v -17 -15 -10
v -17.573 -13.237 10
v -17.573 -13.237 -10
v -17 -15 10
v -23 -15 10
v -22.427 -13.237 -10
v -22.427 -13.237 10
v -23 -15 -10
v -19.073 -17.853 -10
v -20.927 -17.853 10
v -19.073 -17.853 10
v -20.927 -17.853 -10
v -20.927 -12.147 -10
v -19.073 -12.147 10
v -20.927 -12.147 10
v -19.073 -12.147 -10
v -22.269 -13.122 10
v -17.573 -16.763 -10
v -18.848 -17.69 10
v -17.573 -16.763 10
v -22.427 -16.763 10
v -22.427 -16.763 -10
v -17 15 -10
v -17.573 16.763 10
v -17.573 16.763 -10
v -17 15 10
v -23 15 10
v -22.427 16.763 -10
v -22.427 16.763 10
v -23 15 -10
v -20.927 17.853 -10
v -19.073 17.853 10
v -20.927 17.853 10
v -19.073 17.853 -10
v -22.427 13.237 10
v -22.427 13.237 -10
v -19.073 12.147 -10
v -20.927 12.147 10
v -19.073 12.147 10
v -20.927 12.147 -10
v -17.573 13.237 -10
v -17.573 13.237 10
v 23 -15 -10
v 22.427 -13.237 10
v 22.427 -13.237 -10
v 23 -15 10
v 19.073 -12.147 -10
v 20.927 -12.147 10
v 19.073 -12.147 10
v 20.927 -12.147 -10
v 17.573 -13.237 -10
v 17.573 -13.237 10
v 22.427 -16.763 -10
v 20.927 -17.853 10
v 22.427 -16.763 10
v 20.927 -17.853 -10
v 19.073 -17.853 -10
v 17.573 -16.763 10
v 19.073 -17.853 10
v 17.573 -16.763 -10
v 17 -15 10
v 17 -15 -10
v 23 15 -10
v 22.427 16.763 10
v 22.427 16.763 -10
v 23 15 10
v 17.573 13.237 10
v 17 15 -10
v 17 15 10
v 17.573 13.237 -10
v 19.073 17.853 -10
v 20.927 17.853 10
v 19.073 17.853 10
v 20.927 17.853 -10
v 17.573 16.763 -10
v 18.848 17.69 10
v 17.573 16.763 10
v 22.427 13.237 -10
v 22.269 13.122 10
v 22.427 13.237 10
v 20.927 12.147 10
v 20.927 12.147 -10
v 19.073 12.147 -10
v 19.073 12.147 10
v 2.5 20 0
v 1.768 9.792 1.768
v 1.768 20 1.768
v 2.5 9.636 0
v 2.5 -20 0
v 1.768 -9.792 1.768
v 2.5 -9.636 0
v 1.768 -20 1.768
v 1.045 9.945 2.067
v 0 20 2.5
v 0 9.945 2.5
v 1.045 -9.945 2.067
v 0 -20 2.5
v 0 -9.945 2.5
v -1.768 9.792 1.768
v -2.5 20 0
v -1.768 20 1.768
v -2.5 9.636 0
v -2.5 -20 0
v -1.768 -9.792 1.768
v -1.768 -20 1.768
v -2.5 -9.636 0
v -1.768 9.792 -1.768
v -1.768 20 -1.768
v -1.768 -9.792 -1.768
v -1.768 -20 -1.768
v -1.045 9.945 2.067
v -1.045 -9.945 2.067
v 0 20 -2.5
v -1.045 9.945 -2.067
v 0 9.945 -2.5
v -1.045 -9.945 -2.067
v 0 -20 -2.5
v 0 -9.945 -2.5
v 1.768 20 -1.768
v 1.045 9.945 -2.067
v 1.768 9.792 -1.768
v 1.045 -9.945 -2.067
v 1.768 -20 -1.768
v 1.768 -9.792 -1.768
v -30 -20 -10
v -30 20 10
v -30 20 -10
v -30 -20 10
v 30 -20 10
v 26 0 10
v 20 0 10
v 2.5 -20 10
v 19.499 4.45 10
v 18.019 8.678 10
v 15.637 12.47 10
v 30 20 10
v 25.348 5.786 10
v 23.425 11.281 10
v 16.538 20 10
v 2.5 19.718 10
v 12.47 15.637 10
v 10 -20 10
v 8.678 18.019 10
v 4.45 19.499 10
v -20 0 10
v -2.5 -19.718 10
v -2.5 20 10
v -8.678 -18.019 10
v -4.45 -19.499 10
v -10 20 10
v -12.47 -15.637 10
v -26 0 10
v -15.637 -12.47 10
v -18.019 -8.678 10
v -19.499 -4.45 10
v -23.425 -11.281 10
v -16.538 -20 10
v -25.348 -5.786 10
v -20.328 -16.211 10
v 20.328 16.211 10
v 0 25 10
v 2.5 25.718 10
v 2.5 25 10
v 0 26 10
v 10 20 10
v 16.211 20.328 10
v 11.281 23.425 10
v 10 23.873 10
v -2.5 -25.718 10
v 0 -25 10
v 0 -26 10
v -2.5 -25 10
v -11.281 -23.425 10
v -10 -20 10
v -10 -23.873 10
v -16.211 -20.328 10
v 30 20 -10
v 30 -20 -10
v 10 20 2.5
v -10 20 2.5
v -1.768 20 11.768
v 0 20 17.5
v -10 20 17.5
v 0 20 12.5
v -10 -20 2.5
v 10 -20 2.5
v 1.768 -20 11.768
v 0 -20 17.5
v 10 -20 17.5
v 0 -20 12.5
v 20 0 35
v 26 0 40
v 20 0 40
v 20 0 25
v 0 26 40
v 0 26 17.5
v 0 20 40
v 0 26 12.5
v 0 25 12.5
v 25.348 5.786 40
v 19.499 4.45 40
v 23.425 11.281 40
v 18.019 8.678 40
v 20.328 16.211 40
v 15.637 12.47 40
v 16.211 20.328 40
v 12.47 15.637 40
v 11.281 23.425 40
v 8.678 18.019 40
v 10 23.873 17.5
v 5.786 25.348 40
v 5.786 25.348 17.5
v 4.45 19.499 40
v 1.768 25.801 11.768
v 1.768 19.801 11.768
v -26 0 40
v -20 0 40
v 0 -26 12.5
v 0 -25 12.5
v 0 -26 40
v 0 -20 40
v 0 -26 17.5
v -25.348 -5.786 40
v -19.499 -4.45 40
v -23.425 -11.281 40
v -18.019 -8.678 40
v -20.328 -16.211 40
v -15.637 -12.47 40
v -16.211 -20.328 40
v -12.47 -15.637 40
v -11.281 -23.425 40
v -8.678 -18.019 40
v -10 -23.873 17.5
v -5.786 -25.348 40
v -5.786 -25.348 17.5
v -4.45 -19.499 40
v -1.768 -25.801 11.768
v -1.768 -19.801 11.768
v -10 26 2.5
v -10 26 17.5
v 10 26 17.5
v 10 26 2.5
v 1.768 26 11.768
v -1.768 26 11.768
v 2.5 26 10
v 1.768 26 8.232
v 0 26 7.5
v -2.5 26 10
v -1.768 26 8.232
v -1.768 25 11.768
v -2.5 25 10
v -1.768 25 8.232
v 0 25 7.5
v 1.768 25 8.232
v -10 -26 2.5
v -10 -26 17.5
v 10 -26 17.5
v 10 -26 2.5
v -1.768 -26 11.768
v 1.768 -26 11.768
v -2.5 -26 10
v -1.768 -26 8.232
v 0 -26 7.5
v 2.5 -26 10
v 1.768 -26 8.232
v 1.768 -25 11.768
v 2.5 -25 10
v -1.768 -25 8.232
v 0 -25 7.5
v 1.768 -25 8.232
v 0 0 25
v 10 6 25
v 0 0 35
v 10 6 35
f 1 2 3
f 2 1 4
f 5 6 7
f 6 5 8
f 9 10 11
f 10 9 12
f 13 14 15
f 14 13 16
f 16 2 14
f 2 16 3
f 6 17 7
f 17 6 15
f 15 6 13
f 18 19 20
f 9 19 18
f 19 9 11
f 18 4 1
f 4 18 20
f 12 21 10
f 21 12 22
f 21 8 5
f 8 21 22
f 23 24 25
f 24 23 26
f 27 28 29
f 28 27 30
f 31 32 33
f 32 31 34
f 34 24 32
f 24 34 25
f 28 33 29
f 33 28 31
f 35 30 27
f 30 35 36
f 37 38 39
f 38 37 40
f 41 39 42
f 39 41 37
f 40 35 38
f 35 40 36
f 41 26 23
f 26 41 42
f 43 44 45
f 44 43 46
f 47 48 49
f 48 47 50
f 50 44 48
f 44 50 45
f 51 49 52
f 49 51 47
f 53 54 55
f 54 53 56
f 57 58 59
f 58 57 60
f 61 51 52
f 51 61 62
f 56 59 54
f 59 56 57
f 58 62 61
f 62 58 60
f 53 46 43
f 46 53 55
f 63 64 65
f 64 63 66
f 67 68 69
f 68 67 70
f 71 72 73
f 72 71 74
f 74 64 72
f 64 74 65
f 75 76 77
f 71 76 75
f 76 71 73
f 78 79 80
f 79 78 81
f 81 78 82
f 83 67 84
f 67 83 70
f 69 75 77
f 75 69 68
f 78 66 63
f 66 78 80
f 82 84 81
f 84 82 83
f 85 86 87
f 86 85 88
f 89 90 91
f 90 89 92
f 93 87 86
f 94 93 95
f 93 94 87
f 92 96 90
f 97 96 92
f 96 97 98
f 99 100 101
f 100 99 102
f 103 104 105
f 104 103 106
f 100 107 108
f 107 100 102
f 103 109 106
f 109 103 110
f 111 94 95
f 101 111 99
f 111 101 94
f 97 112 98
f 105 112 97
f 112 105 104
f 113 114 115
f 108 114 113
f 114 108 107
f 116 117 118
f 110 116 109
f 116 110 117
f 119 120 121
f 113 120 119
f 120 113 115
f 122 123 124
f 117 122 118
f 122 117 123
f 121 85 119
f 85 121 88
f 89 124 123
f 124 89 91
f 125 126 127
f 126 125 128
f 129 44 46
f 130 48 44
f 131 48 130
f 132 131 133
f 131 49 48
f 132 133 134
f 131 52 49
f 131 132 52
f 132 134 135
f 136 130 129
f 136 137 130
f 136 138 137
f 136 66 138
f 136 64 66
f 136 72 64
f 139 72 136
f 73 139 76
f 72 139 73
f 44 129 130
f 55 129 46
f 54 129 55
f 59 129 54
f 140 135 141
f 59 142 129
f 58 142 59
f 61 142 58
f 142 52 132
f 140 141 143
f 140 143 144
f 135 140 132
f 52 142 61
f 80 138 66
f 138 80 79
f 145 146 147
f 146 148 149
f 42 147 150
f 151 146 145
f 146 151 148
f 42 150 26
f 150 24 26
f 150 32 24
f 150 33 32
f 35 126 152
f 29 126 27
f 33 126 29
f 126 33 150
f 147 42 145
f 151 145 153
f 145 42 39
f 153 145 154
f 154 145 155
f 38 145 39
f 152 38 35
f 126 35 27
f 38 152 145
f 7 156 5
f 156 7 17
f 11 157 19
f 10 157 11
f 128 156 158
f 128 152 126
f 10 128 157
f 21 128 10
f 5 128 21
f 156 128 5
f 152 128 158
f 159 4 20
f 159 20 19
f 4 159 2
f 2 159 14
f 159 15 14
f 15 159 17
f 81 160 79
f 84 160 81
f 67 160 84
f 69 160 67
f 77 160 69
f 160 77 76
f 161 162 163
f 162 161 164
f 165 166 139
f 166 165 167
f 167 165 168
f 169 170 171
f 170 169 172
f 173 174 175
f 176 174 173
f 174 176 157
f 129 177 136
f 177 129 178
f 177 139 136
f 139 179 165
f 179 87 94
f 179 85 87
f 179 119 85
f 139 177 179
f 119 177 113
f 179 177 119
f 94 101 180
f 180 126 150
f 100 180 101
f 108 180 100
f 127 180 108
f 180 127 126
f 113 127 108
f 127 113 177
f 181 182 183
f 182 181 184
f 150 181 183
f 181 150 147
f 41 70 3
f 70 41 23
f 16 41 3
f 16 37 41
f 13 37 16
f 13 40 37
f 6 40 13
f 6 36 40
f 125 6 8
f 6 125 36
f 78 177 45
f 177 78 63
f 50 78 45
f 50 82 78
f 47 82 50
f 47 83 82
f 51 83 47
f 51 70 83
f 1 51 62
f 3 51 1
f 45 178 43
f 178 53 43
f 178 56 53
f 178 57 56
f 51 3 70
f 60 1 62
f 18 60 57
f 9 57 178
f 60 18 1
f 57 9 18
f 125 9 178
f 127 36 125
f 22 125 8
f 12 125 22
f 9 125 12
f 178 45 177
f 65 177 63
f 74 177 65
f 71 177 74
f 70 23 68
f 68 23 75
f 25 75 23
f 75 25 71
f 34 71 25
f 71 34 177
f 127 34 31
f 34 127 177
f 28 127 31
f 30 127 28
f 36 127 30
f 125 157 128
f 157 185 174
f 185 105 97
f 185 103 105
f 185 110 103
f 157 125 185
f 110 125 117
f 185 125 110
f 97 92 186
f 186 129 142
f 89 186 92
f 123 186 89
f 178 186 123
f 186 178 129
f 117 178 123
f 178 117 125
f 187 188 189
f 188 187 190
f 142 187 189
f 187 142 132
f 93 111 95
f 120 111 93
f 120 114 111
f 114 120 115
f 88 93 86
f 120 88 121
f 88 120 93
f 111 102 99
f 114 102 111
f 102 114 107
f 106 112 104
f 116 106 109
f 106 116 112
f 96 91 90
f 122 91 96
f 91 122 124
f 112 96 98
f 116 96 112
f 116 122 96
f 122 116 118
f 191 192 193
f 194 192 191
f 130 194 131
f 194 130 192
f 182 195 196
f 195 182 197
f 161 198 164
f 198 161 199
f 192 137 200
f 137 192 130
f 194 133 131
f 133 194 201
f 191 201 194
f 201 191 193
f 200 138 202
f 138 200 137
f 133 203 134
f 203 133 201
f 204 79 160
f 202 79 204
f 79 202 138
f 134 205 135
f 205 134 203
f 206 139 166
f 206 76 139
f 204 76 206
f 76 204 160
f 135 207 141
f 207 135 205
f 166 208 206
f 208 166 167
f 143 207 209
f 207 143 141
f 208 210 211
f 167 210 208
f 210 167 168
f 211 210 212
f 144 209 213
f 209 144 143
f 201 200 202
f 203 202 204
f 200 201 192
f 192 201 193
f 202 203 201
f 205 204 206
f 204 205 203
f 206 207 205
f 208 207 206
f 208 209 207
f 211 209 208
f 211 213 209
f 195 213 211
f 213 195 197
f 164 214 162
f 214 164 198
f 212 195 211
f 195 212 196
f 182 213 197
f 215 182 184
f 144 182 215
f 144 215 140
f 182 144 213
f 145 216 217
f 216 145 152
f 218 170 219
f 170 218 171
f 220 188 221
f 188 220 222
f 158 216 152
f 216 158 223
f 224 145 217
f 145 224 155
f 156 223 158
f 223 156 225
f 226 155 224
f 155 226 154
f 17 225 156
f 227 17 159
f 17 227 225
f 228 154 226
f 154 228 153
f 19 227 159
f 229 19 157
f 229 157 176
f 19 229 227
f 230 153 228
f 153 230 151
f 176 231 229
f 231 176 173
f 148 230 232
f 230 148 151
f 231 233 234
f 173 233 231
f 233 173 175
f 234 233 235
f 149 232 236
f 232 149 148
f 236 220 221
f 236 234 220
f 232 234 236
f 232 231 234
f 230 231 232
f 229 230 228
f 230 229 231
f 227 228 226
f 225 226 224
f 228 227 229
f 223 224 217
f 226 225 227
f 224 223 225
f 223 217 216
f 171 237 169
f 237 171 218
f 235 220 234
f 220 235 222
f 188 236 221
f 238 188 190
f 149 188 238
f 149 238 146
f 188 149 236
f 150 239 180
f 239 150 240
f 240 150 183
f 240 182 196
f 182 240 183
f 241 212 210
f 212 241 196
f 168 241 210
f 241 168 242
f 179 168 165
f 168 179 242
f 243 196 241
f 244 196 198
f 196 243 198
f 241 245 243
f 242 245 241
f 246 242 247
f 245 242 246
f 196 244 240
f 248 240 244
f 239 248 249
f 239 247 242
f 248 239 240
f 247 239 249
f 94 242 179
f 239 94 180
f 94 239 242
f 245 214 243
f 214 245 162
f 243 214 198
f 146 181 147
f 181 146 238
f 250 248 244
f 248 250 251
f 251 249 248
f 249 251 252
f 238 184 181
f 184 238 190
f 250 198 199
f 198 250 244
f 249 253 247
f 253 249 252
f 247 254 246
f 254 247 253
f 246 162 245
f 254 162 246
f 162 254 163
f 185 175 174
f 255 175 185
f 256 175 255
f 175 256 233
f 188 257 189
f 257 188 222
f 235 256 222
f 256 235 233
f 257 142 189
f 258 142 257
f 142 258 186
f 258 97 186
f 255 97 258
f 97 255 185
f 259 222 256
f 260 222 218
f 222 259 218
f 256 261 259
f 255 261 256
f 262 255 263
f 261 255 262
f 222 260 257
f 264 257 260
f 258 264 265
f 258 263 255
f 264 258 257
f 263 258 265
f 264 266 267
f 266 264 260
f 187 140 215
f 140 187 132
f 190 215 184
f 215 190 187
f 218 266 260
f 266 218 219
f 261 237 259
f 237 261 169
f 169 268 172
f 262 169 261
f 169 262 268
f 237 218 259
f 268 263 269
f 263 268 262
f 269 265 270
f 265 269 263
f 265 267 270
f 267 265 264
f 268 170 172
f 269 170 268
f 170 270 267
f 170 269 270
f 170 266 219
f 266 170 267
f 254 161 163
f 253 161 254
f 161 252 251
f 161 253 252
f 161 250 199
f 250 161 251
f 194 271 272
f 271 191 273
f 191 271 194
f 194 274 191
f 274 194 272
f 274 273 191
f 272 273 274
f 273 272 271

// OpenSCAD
// Parameters
base_length = 60;
base_width = 40;
base_height = 20;
hole_radius = 3;
pivot_radius = 2.5;
pivot_length = base_width + 10;
arm_thickness = 6;
arm_radius = 20;
arm_length = 30;
wedge_width = 6;
wedge_height = 10;
wedge_length = 20;
brace_width = 6;
brace_height = 15;
brace_length = 20;
core_radius = 10;
core_height = base_height;

// Modules
module base_block() {
    difference() {
        cube([base_length, base_width, base_height], center = true);
        // Mounting holes
        for (x = [-20, 20], y = [-15, 15])
            translate([x, y, 0])
                cylinder(h = base_height + 2, r = hole_radius, center = true);
        // Central cylindrical cavity
        translate([0, 0, 0])
            cylinder(h = base_height + 2, r = core_radius, center = true);
        // Side pivot holes
        for (y = [-base_width/2, base_width/2])
            translate([0, y, 0])
                rotate([90, 0, 0])
                    cylinder(h = base_width + 2, r = pivot_radius, center = true);
    }
}

module rotary_clamp_arm(mirror_arm = false) {
    translate([0, 0, base_height/2])
        rotate([0, 0, mirror_arm ? 180 : 0])
            difference() {
                // Curved arm body
                rotate_extrude(angle = 90)
                    translate([arm_radius, 0, 0])
                        square([arm_thickness, arm_length]);
                // Pivot hole
                translate([0, 0, arm_length/2])
                    rotate([90, 0, 0])
                        cylinder(h = arm_thickness + 2, r = pivot_radius, center = true);
                // Locking notch
                translate([0, 0, arm_length - 5])
                    cube([wedge_width, arm_thickness, 2], center = true);
            }
}

module pivot_pin() {
    translate([0, 0, base_height/2])
        rotate([90, 0, 0])
            cylinder(h = pivot_length, r = pivot_radius, center = true);
}

module locking_wedge() {
    translate([0, 0, base_height + 5])
        rotate([0, 0, 0])
            linear_extrude(height = wedge_height)
                polygon(points=[[0,0],[wedge_length,0],[wedge_length/2,wedge_width]]);
}

module side_brace(mirror_brace = false) {
    translate([0, mirror_brace ? -base_width/2 - brace_width/2 : base_width/2 + brace_width/2, base_height/2])
        difference() {
            cube([brace_length, brace_width, brace_height], center = true);
            // Pivot hole
            translate([0, 0, 0])
                rotate([90, 0, 0])
                    cylinder(h = brace_width + 2, r = pivot_radius, center = true);
        }
}

module cylindrical_joint_core() {
    translate([0, 0, 0])
        cylinder(h = core_height, r = core_radius, center = true);
}

// Assembly
module assembly() {
    base_block();
    translate([0, 0, 0])
        cylindrical_joint_core();
    translate([0, 0, 0])
        rotary_clamp_arm(false);
    translate([0, 0, 0])
        rotary_clamp_arm(true);
    pivot_pin();
    locking_wedge();
    side_brace(false);
    side_brace(true);
}

// Render the full model
assembly();
